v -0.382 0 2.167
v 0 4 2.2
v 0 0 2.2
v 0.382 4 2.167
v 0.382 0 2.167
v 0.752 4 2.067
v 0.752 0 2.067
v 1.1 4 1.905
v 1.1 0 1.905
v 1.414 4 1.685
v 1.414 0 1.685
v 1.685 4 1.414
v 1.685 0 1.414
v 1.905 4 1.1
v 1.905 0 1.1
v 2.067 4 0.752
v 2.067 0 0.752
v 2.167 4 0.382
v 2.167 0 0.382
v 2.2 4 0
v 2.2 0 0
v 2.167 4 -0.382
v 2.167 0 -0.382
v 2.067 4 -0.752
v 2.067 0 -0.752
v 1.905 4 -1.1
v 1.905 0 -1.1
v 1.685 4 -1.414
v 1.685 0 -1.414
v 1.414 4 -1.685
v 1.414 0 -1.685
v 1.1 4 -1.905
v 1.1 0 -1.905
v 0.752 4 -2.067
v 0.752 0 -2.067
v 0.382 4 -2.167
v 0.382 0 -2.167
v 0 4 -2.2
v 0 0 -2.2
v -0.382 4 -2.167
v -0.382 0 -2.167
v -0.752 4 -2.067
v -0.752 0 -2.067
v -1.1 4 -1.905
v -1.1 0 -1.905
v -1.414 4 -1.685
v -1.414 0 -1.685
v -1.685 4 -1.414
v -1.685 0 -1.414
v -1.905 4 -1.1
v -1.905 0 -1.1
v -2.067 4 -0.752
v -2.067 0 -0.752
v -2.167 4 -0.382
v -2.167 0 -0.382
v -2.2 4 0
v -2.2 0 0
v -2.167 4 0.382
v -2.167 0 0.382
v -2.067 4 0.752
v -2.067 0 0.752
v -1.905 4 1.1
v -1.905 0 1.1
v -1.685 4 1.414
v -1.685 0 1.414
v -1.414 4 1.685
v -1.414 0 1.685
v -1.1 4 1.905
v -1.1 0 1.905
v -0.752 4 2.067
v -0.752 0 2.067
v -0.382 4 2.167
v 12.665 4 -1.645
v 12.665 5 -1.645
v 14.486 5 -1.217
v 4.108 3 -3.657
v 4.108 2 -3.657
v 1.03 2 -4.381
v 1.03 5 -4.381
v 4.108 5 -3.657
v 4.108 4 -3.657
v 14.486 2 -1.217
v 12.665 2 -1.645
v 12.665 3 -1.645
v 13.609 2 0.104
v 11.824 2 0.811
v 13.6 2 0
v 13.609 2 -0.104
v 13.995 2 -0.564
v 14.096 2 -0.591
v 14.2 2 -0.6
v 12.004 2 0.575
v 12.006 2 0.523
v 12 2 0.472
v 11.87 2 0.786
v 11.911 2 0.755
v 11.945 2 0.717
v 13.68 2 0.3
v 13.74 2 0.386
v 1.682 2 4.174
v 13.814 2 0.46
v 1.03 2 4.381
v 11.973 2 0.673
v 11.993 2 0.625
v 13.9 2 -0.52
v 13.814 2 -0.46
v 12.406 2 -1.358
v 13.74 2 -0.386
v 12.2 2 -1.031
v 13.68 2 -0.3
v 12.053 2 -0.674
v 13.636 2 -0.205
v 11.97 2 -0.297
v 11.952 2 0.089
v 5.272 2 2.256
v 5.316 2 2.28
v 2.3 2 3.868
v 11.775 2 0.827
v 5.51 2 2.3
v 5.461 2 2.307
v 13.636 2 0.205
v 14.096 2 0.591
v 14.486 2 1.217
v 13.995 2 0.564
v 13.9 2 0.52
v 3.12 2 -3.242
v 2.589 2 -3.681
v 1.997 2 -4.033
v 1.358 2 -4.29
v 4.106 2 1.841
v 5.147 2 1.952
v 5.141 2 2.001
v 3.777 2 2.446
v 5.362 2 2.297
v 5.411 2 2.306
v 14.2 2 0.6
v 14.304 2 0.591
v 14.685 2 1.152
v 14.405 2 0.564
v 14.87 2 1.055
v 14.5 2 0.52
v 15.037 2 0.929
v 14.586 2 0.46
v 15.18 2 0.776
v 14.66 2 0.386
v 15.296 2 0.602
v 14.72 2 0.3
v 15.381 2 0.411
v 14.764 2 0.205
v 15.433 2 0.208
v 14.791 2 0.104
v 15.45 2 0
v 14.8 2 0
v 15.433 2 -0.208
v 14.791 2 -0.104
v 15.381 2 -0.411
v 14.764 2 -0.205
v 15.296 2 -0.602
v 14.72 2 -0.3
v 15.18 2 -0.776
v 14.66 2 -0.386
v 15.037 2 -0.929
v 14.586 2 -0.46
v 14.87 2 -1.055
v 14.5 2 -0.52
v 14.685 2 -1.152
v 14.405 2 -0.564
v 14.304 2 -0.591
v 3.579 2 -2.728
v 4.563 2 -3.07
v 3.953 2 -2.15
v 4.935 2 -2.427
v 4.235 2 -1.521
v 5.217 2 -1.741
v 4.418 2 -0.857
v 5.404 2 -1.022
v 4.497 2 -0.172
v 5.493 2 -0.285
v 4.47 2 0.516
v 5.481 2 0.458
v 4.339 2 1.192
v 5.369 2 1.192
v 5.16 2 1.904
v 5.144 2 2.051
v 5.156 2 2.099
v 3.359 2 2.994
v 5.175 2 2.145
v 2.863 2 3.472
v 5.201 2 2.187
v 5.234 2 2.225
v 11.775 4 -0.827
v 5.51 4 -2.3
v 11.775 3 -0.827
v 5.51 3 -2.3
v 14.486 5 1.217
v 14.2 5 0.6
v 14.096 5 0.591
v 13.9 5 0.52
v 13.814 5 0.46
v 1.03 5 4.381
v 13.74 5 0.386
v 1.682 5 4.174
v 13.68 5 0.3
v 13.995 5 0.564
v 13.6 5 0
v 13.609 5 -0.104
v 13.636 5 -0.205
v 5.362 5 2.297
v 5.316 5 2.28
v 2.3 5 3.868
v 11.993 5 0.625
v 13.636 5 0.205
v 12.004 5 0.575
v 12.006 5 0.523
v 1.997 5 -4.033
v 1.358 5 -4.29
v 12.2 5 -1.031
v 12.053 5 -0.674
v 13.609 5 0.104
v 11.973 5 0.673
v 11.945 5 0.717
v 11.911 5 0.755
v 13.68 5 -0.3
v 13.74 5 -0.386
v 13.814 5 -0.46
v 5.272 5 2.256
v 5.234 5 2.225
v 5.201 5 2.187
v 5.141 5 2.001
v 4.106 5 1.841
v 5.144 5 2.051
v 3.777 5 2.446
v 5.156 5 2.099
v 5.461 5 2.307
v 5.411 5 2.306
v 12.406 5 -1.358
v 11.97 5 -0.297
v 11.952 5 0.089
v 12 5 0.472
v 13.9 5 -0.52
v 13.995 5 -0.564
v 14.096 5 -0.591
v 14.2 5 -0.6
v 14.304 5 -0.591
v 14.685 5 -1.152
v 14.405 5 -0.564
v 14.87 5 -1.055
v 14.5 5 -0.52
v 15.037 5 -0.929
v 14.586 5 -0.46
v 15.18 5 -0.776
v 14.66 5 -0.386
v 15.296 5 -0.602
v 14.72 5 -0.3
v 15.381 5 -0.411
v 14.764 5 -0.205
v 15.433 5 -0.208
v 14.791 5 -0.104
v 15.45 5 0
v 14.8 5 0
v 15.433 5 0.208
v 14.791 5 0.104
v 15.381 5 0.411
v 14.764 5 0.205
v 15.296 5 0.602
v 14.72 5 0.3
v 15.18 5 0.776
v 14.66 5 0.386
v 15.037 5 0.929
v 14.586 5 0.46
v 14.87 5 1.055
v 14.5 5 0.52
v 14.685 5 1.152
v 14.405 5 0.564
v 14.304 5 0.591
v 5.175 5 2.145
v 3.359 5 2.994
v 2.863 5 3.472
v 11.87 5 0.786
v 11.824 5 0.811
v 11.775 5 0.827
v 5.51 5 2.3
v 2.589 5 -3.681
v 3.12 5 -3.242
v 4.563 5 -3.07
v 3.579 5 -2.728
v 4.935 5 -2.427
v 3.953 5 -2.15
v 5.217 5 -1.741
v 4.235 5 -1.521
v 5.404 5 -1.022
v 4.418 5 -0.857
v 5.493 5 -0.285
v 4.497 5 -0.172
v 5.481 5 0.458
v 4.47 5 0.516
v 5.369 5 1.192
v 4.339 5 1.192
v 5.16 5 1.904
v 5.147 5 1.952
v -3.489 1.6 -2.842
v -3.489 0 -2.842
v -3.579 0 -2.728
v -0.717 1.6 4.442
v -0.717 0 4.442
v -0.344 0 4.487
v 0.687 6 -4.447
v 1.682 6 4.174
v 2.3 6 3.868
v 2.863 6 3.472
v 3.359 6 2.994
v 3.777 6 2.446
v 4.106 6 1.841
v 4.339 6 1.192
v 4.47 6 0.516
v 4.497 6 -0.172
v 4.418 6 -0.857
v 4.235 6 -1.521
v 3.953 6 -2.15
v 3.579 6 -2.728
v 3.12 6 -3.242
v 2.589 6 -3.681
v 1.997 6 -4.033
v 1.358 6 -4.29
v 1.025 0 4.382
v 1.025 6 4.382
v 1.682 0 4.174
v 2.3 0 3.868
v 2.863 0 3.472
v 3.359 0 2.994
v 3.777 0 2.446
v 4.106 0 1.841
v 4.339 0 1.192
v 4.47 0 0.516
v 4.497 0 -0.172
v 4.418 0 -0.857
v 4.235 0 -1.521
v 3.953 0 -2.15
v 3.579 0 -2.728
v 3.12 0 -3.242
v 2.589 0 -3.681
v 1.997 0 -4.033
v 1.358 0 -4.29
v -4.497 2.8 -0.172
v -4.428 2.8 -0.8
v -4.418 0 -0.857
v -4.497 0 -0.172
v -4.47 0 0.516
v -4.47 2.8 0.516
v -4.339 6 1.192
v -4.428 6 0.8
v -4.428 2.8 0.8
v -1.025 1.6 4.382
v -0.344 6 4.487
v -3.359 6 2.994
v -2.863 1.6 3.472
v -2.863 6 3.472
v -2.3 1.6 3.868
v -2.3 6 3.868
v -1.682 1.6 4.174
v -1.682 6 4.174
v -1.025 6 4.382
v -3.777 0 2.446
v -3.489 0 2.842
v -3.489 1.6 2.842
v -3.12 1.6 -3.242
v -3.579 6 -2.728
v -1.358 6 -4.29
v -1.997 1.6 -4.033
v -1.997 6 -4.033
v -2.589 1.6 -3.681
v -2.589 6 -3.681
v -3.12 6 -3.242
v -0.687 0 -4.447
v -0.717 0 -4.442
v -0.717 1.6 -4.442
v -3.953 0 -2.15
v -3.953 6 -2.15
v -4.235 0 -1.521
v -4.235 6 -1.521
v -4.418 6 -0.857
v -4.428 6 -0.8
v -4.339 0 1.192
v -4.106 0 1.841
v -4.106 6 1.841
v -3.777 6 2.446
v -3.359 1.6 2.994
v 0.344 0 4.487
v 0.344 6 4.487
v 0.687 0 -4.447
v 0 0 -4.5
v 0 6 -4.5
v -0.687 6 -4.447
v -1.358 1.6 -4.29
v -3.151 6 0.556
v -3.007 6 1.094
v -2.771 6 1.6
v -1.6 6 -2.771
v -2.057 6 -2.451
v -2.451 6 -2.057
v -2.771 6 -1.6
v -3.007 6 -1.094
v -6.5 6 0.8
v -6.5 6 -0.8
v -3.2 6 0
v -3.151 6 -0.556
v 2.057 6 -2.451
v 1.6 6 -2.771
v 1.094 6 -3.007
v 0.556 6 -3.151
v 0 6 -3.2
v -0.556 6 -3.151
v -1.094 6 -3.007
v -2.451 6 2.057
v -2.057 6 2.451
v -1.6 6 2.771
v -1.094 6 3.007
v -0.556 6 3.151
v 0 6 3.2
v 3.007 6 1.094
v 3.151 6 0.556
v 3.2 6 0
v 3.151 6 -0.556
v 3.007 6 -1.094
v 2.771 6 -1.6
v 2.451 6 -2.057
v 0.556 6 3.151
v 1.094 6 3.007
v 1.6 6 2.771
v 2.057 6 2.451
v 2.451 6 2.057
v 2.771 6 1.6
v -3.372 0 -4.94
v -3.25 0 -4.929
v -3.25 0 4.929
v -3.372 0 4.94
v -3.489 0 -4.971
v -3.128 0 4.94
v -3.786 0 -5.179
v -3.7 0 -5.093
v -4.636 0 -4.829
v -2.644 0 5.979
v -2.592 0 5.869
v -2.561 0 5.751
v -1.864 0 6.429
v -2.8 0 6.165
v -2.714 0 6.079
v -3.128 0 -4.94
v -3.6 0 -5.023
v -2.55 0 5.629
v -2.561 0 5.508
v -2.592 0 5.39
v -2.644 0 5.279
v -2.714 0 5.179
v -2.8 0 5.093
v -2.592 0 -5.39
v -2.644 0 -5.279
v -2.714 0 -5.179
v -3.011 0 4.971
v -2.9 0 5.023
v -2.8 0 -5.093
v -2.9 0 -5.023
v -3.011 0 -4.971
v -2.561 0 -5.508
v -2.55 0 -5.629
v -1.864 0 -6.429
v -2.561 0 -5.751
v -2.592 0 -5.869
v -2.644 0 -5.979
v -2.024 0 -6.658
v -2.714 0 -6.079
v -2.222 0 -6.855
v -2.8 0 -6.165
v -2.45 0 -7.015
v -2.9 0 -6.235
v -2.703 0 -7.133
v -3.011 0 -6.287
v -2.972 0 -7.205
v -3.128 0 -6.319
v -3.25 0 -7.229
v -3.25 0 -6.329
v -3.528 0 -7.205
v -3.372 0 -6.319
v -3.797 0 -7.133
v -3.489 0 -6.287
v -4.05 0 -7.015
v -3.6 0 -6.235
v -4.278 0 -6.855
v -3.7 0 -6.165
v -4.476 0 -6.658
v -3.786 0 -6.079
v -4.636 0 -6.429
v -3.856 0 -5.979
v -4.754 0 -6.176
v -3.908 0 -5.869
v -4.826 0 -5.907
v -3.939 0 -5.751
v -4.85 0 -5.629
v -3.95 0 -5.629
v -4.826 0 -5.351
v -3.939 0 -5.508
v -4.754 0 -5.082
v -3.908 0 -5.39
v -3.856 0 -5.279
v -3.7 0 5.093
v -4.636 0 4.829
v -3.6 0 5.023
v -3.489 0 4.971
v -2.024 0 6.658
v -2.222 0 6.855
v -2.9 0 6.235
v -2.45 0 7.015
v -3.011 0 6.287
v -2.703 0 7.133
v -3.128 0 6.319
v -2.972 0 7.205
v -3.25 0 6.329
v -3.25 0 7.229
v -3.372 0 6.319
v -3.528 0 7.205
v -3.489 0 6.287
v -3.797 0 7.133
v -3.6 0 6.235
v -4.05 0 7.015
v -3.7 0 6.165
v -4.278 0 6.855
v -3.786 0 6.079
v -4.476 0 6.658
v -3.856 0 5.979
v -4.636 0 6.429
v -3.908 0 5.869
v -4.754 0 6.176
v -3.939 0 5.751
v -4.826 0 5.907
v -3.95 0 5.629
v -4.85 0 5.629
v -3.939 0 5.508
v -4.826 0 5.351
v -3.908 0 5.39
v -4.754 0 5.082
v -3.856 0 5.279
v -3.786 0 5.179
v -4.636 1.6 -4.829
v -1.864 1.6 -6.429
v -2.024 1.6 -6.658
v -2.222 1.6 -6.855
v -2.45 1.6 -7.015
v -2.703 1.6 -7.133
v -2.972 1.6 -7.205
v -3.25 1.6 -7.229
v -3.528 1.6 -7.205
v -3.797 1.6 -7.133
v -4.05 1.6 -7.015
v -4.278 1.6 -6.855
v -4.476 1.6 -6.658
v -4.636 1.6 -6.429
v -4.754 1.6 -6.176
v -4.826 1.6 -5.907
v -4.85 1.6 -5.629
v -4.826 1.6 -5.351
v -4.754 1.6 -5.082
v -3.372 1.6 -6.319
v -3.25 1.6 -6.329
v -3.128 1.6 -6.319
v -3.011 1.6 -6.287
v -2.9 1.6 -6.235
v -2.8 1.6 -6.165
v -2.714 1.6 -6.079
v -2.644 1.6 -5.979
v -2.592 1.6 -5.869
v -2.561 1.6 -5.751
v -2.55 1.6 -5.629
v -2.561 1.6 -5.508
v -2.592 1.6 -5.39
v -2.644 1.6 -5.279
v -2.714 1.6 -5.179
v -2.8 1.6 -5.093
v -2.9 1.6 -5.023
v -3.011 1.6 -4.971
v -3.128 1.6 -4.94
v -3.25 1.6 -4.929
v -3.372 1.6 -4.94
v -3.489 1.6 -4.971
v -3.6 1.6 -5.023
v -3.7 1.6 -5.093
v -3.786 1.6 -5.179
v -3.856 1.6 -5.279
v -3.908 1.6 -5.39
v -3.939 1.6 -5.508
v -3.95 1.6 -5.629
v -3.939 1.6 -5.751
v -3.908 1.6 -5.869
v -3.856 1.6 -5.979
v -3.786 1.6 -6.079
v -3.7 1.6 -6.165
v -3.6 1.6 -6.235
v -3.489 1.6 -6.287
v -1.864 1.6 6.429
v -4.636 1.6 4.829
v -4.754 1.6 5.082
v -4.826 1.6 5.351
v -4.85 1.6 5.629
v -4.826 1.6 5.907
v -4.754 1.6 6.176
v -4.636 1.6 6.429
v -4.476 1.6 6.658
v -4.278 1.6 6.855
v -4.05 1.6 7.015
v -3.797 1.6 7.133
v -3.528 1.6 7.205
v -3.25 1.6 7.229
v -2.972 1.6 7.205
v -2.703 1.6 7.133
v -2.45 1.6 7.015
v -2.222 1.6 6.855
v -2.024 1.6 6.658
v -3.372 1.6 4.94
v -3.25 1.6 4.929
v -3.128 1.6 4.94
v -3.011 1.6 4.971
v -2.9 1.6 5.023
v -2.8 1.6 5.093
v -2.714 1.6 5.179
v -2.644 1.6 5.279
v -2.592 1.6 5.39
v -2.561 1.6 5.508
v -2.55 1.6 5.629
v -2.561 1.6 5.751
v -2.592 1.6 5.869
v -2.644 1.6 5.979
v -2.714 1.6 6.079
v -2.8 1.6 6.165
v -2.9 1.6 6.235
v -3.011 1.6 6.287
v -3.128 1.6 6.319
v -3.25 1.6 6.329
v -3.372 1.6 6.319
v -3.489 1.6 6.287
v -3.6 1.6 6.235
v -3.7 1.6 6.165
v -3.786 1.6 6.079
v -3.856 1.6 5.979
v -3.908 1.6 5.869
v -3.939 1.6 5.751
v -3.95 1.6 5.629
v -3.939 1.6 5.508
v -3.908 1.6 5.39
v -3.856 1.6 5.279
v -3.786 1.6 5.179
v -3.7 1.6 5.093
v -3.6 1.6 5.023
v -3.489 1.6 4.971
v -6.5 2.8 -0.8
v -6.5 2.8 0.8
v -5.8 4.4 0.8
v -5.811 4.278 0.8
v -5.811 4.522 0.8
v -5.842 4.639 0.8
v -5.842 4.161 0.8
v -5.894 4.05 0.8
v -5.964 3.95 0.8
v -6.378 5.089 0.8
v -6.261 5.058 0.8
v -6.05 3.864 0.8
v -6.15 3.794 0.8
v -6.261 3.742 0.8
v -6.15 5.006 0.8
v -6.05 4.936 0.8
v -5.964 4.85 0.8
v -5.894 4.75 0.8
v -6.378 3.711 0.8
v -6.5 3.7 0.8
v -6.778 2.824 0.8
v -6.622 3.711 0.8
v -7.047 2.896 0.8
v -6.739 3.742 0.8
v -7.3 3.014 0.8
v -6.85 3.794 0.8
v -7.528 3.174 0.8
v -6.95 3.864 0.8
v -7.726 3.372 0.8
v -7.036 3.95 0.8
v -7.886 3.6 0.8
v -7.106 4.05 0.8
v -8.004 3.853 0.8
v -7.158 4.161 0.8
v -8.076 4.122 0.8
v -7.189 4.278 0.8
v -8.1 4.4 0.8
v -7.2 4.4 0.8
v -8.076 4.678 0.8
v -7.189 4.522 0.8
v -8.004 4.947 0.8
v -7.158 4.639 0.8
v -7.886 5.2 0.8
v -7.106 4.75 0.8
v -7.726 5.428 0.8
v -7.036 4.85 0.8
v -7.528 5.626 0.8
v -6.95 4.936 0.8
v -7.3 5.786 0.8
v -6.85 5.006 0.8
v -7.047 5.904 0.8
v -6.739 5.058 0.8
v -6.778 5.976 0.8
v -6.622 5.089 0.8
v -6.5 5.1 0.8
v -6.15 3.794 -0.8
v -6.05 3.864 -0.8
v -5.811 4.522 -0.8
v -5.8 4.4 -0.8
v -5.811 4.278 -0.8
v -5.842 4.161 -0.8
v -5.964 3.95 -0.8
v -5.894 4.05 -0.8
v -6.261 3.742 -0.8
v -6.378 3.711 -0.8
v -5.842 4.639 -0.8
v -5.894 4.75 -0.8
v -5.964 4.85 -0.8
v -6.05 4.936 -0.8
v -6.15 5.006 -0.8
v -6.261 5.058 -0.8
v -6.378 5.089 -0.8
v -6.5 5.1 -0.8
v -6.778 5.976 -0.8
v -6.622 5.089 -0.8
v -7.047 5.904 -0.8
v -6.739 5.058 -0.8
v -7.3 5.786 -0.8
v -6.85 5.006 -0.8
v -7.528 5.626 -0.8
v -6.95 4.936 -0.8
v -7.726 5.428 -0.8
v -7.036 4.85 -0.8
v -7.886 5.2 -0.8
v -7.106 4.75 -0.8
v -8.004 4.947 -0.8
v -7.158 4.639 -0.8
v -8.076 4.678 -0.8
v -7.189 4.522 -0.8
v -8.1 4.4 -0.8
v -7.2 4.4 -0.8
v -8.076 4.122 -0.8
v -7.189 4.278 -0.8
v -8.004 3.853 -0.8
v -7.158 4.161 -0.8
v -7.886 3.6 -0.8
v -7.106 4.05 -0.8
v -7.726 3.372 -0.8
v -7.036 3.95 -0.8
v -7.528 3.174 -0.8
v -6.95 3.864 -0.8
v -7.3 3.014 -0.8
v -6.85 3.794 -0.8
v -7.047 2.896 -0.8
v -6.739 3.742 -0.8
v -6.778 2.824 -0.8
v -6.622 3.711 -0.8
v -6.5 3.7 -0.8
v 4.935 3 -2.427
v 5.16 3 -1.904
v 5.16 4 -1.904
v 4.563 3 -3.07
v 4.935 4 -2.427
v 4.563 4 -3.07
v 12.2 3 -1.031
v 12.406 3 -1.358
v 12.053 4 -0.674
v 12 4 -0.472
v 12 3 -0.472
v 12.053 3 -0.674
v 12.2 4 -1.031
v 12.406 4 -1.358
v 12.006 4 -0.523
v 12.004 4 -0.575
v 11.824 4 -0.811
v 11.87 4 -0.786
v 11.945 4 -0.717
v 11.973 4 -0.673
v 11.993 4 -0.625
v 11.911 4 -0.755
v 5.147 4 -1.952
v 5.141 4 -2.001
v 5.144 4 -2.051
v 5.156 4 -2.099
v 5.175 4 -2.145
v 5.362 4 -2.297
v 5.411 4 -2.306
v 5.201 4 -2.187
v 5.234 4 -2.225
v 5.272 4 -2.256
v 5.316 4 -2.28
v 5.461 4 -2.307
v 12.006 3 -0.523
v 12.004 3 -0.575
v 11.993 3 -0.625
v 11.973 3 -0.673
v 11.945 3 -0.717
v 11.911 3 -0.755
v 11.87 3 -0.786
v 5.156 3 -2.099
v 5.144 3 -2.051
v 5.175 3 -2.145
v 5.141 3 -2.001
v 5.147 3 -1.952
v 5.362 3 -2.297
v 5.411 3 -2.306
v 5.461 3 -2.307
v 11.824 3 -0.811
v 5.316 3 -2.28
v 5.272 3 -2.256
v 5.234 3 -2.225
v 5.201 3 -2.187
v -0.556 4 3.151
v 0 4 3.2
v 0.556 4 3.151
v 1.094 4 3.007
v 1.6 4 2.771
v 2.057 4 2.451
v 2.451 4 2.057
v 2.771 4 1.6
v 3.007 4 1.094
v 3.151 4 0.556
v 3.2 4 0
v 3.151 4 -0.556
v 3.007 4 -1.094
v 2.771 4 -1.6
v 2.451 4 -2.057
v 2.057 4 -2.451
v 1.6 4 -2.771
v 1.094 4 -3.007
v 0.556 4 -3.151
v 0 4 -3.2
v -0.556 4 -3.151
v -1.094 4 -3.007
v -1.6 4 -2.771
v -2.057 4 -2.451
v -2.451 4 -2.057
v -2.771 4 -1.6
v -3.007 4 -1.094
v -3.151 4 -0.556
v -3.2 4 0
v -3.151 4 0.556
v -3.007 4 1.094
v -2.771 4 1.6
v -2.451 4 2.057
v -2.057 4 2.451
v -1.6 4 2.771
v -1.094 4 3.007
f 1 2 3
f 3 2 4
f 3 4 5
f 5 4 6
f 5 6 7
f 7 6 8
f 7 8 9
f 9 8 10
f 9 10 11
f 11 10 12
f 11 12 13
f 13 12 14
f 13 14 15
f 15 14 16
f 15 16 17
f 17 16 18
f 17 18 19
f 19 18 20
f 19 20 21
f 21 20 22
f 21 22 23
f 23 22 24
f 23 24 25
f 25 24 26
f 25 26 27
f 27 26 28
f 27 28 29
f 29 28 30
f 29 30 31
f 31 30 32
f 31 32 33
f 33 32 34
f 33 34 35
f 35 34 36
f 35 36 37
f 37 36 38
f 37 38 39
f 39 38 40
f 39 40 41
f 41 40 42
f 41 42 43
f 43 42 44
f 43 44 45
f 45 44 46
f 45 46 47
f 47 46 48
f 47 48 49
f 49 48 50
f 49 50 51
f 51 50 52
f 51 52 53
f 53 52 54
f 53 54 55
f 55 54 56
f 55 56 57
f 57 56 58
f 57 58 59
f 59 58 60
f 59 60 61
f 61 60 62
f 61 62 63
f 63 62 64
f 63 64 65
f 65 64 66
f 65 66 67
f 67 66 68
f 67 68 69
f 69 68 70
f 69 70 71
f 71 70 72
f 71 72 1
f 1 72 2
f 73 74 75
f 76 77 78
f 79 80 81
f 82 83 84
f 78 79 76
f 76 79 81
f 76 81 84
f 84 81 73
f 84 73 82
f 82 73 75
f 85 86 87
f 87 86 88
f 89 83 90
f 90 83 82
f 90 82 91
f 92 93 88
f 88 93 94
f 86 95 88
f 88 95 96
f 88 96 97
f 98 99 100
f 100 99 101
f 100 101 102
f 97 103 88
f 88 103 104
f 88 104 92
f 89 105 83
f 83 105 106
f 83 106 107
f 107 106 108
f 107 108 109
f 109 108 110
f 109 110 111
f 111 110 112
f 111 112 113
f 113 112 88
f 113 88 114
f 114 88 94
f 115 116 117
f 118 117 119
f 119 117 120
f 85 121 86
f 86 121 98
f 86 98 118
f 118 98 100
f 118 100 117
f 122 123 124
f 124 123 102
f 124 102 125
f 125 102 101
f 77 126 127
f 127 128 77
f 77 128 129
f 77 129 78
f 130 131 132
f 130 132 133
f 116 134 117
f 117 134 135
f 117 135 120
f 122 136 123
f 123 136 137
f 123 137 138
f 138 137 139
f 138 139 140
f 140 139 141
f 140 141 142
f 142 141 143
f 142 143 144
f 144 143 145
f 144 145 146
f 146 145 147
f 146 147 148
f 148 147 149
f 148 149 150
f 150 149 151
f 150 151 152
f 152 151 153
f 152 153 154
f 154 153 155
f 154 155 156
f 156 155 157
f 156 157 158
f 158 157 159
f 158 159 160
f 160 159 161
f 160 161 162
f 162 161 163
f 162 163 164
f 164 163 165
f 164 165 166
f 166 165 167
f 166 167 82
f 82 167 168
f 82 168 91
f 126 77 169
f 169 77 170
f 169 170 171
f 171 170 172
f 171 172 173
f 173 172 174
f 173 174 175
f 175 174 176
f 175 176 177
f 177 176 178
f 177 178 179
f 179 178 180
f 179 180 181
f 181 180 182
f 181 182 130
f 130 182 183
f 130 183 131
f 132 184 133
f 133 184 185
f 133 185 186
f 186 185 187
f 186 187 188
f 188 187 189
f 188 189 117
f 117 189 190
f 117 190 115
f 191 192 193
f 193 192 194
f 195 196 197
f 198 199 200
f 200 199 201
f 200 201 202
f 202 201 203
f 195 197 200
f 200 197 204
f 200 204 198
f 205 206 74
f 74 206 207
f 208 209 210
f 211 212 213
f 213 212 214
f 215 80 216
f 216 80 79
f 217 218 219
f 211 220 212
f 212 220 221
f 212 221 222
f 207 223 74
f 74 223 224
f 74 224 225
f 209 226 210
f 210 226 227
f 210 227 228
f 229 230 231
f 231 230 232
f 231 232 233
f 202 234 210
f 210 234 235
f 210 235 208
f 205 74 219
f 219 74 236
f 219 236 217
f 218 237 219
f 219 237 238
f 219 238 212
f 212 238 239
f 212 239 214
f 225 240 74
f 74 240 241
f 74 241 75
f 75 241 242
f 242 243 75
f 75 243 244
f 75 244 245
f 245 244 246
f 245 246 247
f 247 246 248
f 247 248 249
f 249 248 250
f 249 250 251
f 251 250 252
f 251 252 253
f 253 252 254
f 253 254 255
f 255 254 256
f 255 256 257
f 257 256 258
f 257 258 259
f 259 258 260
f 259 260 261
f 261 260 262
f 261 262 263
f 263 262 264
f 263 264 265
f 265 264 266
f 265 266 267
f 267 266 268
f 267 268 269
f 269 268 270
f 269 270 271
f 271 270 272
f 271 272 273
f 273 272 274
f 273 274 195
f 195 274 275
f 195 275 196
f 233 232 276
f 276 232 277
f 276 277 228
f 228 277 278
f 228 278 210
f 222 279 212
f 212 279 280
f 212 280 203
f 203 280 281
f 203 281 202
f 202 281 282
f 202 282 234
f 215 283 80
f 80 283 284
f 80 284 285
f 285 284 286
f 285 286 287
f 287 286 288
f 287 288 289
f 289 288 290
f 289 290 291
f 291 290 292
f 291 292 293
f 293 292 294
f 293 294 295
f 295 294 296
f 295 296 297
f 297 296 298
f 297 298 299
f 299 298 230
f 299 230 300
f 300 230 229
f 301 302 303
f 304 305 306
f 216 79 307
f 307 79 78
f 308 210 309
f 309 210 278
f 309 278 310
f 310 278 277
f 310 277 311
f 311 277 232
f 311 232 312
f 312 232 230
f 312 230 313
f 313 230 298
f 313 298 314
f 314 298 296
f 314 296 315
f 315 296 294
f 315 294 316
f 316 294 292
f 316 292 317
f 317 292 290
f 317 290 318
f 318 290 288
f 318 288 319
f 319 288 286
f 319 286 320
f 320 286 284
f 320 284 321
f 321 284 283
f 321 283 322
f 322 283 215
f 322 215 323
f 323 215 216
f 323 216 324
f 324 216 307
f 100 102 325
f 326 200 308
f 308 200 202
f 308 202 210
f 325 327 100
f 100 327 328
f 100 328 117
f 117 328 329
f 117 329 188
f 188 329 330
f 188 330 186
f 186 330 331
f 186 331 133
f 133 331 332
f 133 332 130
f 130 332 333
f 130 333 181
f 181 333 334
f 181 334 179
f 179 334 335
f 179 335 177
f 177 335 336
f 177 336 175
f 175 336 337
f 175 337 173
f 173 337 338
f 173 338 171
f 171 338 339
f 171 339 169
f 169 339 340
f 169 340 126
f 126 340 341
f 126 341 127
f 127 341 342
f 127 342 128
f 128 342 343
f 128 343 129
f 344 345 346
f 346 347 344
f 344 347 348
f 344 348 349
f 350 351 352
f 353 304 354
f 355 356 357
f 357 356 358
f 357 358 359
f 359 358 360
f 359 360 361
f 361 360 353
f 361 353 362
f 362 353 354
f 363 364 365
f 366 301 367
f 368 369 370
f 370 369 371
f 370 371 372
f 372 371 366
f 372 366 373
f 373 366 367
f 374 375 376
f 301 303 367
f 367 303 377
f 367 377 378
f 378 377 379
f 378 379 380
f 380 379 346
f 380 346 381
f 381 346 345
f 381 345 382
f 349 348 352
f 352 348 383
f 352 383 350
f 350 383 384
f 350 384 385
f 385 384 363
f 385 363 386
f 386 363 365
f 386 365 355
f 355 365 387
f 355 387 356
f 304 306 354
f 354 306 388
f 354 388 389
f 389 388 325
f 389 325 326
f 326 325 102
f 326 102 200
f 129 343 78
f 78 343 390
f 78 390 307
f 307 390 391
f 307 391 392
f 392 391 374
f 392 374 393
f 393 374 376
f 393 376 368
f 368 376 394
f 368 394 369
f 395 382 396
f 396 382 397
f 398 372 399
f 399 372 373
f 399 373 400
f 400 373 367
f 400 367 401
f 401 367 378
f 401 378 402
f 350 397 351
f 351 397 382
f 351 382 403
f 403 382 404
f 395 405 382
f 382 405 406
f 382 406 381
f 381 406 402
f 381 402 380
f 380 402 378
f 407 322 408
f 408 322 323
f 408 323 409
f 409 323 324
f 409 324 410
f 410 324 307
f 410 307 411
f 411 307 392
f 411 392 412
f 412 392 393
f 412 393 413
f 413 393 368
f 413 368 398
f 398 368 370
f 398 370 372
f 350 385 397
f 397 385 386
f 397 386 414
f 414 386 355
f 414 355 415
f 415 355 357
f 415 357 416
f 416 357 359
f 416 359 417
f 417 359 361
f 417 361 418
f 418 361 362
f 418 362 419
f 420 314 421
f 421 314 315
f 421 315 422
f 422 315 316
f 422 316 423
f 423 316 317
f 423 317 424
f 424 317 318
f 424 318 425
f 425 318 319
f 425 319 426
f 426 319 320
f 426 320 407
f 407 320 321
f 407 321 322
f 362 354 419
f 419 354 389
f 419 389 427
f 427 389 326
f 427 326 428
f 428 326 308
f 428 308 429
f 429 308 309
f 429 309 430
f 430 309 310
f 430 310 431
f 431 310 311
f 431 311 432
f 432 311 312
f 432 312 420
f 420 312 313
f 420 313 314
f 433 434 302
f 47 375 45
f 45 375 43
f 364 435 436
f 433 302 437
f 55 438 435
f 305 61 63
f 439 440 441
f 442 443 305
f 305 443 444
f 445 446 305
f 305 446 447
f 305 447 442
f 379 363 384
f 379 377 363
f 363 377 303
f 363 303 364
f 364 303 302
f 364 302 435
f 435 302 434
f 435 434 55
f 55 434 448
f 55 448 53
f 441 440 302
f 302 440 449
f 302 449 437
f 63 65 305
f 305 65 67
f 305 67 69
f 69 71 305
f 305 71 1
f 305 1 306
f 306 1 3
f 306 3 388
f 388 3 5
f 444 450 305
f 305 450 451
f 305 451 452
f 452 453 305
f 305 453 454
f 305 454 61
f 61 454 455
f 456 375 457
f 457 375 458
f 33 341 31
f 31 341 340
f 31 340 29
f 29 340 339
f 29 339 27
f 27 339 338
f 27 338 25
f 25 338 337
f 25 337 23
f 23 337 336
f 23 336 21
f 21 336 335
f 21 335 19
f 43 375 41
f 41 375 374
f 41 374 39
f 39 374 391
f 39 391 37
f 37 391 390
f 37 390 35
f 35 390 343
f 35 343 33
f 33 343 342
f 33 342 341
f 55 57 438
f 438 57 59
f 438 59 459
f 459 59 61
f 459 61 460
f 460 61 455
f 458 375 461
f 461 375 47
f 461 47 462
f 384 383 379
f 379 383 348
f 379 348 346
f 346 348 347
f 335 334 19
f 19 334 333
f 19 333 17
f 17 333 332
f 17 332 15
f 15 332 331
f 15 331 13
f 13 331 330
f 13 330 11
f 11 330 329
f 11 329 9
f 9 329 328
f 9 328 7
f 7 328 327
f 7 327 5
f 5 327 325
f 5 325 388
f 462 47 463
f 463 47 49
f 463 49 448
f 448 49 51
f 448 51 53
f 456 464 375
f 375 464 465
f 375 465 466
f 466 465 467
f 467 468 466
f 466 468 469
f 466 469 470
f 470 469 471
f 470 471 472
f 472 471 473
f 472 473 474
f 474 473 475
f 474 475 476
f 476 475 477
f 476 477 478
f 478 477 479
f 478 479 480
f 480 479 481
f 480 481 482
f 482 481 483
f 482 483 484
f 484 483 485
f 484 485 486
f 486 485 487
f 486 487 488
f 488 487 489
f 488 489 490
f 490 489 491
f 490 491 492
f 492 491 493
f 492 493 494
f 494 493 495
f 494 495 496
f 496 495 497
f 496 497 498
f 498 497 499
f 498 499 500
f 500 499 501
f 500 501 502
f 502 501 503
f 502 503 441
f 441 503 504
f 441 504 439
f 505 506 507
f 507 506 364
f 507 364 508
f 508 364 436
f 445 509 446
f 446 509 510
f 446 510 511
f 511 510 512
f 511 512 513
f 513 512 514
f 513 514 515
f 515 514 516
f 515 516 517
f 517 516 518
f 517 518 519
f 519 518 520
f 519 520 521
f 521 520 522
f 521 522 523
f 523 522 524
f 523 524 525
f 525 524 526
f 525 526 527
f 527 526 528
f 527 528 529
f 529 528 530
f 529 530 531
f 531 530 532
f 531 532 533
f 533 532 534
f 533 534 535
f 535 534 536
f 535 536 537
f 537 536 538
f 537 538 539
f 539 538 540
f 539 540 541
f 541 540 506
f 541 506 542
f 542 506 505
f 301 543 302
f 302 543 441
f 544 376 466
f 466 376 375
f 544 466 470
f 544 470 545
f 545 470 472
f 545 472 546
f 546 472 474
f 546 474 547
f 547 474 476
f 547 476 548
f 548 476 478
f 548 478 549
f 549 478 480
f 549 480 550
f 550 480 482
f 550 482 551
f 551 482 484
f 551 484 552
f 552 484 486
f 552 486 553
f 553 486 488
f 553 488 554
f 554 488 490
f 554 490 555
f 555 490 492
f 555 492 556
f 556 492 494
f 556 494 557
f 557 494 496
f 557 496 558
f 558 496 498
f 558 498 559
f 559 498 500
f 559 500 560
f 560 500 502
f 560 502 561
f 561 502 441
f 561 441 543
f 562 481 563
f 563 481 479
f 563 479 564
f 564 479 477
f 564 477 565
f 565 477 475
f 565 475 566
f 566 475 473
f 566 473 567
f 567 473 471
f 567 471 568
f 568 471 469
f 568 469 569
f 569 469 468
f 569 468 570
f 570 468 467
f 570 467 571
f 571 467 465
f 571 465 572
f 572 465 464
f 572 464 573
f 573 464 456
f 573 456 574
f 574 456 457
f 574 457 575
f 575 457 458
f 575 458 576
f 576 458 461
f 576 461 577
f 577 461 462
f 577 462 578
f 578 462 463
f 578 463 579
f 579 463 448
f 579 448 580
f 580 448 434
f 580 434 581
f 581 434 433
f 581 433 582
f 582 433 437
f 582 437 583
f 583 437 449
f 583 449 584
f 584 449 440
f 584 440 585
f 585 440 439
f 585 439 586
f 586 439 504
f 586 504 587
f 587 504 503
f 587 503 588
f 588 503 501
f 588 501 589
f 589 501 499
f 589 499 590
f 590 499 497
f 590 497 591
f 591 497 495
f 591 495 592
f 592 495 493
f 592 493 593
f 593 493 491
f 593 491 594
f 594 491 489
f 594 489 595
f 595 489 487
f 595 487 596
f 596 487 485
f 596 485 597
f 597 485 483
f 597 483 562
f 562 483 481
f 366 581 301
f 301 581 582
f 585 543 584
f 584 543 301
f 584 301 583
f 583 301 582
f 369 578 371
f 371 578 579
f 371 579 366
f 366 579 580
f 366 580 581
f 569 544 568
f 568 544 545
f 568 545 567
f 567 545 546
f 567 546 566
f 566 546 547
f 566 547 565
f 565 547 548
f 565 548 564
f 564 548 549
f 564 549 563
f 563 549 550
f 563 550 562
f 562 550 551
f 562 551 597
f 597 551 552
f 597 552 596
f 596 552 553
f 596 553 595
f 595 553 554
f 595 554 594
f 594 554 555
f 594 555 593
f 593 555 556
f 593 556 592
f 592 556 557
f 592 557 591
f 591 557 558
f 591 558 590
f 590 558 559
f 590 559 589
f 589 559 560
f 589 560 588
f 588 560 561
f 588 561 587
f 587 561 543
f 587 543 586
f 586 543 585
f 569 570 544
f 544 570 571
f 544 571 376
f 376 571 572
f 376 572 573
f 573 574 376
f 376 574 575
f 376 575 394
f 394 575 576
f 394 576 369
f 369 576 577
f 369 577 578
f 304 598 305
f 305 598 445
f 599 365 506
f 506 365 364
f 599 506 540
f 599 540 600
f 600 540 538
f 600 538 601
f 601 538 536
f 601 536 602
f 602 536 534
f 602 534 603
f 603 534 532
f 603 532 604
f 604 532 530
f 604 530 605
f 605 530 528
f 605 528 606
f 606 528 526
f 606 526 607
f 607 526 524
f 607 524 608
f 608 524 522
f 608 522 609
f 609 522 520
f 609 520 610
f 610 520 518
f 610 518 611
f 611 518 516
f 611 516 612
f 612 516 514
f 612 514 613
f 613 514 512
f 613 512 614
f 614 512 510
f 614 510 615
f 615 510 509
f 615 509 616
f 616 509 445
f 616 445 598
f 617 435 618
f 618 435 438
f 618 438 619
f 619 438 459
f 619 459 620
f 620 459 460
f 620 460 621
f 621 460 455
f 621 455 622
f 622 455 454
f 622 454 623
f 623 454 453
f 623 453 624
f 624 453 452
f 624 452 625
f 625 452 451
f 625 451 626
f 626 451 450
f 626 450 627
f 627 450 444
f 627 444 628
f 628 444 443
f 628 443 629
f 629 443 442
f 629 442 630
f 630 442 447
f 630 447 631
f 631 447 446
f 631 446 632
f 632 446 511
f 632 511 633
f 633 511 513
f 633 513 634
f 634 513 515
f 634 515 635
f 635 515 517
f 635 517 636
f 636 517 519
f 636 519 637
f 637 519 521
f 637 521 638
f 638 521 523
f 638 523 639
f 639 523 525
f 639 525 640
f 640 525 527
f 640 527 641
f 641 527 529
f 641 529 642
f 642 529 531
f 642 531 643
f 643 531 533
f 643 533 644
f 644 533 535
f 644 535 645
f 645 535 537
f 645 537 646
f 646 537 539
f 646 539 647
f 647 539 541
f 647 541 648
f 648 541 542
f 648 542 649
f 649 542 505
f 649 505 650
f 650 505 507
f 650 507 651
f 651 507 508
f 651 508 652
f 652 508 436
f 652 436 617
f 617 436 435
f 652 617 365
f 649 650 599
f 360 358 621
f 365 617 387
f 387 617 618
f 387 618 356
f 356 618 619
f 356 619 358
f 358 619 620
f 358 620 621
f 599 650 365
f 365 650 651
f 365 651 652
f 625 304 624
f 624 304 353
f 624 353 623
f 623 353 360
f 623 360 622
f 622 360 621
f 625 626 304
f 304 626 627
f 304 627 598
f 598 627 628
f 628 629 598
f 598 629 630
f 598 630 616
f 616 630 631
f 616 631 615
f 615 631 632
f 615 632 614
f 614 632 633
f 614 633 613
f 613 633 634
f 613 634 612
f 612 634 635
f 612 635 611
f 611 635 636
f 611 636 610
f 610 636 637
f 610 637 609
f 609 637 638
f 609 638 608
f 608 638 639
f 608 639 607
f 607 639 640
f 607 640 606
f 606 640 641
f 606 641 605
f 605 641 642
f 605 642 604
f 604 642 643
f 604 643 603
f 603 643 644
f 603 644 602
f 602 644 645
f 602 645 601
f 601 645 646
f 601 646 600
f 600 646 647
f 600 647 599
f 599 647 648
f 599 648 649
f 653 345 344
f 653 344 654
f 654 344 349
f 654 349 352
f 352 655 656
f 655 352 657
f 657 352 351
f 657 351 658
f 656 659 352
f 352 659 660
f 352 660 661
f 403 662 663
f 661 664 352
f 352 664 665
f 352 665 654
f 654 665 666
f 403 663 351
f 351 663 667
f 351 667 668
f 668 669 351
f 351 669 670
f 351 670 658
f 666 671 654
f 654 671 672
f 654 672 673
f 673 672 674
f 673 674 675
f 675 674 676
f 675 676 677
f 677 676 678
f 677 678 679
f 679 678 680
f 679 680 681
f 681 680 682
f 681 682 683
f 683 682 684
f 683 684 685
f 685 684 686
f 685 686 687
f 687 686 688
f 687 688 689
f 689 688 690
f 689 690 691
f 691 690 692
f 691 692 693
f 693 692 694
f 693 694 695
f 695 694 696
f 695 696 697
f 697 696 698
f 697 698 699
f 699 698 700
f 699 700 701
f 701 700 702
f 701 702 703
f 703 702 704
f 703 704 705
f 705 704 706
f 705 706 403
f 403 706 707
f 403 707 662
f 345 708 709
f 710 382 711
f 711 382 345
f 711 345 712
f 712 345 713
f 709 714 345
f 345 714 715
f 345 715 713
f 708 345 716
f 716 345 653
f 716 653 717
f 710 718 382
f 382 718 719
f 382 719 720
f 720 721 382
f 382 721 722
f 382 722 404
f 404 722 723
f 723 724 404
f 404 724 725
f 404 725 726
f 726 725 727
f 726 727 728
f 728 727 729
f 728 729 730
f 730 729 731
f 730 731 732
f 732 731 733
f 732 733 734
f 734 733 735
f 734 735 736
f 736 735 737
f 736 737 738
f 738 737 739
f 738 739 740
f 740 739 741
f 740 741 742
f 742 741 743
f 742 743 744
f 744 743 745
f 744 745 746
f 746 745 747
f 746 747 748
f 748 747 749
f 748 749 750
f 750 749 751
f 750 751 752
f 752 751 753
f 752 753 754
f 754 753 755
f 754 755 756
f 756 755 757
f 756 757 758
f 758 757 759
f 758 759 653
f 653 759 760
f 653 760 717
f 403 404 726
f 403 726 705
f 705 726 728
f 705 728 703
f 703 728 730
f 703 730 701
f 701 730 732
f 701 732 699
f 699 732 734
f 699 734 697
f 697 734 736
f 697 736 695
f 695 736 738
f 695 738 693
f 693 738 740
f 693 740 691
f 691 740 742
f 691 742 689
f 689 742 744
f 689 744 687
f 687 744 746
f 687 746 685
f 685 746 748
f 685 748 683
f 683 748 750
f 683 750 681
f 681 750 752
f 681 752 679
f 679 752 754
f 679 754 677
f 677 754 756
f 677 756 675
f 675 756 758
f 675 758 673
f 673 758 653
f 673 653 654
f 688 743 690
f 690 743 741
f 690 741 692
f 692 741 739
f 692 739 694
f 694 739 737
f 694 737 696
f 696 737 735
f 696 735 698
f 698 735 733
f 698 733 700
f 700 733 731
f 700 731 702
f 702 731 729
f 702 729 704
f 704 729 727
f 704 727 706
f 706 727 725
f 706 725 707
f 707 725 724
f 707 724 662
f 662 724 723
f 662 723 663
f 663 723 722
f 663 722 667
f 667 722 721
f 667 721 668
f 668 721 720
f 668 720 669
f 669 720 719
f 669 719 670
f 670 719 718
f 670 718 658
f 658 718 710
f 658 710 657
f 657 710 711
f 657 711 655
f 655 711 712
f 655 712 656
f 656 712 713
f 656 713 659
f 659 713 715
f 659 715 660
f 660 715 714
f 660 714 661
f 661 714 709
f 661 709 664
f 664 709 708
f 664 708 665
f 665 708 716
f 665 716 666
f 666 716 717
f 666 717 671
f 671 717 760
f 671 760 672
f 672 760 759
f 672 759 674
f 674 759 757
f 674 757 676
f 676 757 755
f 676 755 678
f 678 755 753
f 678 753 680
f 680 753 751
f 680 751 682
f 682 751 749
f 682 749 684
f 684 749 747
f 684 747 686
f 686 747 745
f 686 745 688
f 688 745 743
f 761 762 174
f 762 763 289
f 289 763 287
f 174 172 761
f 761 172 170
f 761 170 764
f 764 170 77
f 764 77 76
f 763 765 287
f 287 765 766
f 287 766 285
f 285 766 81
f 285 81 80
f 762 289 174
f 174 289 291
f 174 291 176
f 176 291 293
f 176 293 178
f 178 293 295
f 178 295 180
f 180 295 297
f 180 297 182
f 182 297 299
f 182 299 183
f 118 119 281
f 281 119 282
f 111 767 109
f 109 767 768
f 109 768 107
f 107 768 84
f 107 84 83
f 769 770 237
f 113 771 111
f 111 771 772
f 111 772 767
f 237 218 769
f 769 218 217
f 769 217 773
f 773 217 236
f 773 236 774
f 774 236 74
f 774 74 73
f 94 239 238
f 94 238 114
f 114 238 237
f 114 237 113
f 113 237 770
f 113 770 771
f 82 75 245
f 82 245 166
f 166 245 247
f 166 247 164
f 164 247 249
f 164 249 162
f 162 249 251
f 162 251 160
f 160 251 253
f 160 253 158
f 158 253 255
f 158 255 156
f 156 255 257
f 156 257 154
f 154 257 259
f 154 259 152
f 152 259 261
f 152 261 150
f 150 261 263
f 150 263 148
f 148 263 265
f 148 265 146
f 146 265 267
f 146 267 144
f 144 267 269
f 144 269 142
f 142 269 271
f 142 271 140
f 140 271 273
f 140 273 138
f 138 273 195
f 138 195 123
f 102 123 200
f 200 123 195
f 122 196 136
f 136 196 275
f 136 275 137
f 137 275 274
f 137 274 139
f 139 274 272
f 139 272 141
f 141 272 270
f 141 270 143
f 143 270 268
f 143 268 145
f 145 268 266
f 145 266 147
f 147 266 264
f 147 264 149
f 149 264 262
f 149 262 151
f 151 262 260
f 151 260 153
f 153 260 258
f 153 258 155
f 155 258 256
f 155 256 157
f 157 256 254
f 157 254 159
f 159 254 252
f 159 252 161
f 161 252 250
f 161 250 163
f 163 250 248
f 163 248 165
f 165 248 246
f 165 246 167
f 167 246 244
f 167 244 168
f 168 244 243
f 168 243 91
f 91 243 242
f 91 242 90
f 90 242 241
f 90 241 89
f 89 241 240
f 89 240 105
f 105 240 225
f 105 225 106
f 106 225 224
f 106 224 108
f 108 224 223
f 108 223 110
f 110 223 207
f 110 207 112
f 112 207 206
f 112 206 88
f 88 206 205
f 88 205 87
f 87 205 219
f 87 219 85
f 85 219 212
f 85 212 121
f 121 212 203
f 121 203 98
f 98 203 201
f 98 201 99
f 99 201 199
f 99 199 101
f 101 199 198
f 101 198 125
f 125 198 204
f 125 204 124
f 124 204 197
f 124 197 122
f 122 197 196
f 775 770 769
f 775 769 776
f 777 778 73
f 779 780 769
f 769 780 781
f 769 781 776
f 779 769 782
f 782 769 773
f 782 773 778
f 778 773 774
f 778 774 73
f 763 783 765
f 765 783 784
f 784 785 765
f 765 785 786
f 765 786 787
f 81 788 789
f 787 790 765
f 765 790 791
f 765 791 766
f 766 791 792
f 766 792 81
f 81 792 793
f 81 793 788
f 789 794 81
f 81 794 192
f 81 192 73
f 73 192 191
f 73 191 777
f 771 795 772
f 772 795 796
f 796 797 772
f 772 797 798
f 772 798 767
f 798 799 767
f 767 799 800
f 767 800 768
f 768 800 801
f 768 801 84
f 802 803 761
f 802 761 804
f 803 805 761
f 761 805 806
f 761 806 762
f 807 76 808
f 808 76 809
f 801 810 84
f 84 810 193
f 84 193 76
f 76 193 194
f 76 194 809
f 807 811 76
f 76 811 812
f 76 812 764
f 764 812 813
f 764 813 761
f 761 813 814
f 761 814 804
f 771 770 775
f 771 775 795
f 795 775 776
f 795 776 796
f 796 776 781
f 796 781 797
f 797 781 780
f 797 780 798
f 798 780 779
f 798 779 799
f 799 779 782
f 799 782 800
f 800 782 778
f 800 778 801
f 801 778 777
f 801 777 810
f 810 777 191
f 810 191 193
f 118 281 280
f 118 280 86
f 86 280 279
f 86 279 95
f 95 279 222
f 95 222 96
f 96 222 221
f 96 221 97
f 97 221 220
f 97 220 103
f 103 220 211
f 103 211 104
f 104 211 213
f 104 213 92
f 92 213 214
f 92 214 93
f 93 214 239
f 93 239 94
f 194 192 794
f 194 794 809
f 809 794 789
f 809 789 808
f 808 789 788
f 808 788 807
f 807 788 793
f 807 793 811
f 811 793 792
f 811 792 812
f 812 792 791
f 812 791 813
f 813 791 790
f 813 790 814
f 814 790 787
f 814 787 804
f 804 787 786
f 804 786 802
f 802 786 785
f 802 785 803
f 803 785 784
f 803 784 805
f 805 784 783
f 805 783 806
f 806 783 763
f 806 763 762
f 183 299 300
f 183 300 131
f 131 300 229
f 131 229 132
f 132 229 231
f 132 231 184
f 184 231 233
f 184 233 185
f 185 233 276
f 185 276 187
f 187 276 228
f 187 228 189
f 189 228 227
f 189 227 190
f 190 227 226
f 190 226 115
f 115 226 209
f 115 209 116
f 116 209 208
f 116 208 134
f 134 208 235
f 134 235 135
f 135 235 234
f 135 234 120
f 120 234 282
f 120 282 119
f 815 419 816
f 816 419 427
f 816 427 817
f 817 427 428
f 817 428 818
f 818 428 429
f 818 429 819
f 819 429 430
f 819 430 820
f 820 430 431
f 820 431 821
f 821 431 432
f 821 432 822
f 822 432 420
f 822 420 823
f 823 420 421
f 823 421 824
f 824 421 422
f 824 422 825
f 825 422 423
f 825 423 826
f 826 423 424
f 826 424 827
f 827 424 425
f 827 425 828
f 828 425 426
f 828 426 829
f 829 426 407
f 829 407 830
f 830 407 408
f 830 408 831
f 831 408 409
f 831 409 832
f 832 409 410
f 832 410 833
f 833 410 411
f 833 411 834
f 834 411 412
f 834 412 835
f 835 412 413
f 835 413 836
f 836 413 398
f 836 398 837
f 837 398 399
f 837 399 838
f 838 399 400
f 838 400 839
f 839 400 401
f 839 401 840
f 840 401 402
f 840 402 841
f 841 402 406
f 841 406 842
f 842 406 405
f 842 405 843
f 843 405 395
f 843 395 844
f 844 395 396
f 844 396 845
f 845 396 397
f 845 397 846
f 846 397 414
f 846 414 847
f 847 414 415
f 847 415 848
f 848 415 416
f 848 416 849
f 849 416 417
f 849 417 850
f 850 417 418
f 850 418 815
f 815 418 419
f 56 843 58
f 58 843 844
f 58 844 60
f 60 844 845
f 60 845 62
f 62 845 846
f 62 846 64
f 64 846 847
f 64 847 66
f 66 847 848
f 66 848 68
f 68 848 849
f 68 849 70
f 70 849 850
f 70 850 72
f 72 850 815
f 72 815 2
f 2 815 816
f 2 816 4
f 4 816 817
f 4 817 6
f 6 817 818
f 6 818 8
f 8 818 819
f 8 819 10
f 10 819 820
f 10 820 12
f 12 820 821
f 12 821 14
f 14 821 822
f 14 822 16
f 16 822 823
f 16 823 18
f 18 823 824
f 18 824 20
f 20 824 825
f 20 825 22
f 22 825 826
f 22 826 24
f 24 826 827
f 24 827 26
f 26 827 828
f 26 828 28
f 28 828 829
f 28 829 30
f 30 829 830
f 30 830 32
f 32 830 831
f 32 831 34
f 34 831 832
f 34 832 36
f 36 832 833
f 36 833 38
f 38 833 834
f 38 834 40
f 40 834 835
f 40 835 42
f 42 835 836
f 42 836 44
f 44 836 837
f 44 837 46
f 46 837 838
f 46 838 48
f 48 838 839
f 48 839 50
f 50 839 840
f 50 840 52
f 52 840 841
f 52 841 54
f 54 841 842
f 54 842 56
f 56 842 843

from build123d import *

# Parameters (mm, degrees)
SKETCH1_R           = 4.5
BOSS_EXTRUDE1_DEPTH = 6
SKETCH2_R           = 0.7
BOSS_EXTRUDE2_DEPTH = 1.6
SKETCH3_R           = 0.7
BOSS_EXTRUDE3_DEPTH = 0.8
BOSS_EXTRUDE4_START = -4
SKETCH4_R           = 0.6
BOSS_EXTRUDE4_DEPTH = 3
CUT_EXTRUDE1_START  = -2
CUT_EXTRUDE1_DEPTH  = 1
CUT_EXTRUDE2_START  = -4
CUT_EXTRUDE2_DEPTH  = 1
FILLET1_R           = 0.3
SKETCH5_R           = 2.2
CUT_EXTRUDE4_DEPTH  = 19.08212732
SKETCH9_R           = 3.2
SKETCH9_R_2         = 2.2
CUT_EXTRUDE5_DEPTH  = 2


with BuildPart() as part:
    # Sketch1 → Boss-Extrude1 (new body)
    with BuildSketch(Plane(origin=(0, 0, 0), x_dir=(1, 0, 0), z_dir=(0, 1, 0))):
        Circle(SKETCH1_R)
    extrude(amount=BOSS_EXTRUDE1_DEPTH)

    # Sketch2 → Boss-Extrude2 (add)
    # profile 1 of 2: a face of its own
    with BuildSketch(Plane.XZ):
        with BuildLine():
            Line((-0.717333438, 4.442457961), (-1.864359354, 6.429165125))
            ThreePointArc((-1.864359354, 6.429165125), (-4.05, 7.014805771), (-4.635640646, 4.829165125))
            Line((-4.635640646, 4.829165125), (-3.488614731, 2.842457961))
            ThreePointArc((-3.488614731, 2.842457961), (-2.25, 3.897114317), (-0.717333438, 4.442457961))
        make_face()
        with Locations((-3.25, 5.629165125)):
            Circle(SKETCH2_R, mode=Mode.SUBTRACT)
    # profile 2 of 2: a face of its own
    with BuildSketch(Plane.XZ):
        with BuildLine():
            ThreePointArc((-0.717333438, -4.442457961), (-2.25, -3.897114317), (-3.488614731, -2.842457961))
            Line((-3.488614731, -2.842457961), (-4.635640646, -4.829165125))
            ThreePointArc((-4.635640646, -4.829165125), (-4.05, -7.014805771), (-1.864359354, -6.429165125))
            Line((-1.864359354, -6.429165125), (-0.717333438, -4.442457961))
        make_face()
        with Locations((-3.25, -5.629165125)):
            Circle(SKETCH2_R, mode=Mode.SUBTRACT)
    extrude(amount=-BOSS_EXTRUDE2_DEPTH)

    # Sketch3 → Boss-Extrude3 (add, symmetric)
    with BuildSketch(Plane.XY):
        with BuildLine():
            Line((-3.5, 6), (-6.5, 6))
            ThreePointArc((-6.5, 6), (-8.1, 4.4), (-6.5, 2.8))
            Line((-6.5, 2.8), (-3.5, 2.8))
            Line((-3.5, 2.8), (-3.5, 6))
        make_face()
        with Locations((-6.5, 4.4)):
            Circle(SKETCH3_R, mode=Mode.SUBTRACT)
    extrude(amount=BOSS_EXTRUDE3_DEPTH, both=True)

    # Sketch4 → Boss-Extrude4 (add)
    with BuildSketch(Plane(origin=(0, 6, 0), x_dir=(1, 0, 0), z_dir=(0, 1, 0)).offset(BOSS_EXTRUDE4_START)):
        with BuildLine():
            ThreePointArc((1.029929577, 4.380553055), (4.5, 0), (1.029929577, -4.380553055))
            Line((1.029929577, -4.380553055), (14.486091549, -1.216820293))
            ThreePointArc((14.486091549, -1.216820293), (15.45, 0), (14.486091549, 1.216820293))
            Line((14.486091549, 1.216820293), (1.029929577, 4.380553055))
        make_face()
        with BuildLine():
            Line((4.931081365, 2.436069903), (12.080503997, 0.75514018))
            ThreePointArc((12.080503997, 0.75514018), (11.982866038, 0.38316706), (11.95, 0))
            ThreePointArc((11.95, 0), (11.982866038, -0.38316706), (12.080503997, -0.75514018))
            Line((12.080503997, -0.75514018), (4.931081365, -2.436069903))
            ThreePointArc((4.931081365, -2.436069903), (5.5, 0), (4.931081365, 2.436069903))
        make_face(mode=Mode.SUBTRACT)
        with Locations((14.2, 0)):
            Circle(SKETCH4_R, mode=Mode.SUBTRACT)
    extrude(amount=BOSS_EXTRUDE4_DEPTH)

    # Sketch4<3> → Cut-Extrude1 (cut)
    with BuildSketch(Plane(origin=(0, 6, 0), x_dir=(1, 0, 0), z_dir=(0, 1, 0)).offset(CUT_EXTRUDE1_START)):
        with BuildLine():
            Line((12.664921694, 1.645002916), (4.108268481, 3.656792323))
            ThreePointArc((4.108268481, 3.656792323), (4.560701943, 3.074084869), (4.931081365, 2.436069903))
            Line((4.931081365, 2.436069903), (12.080503997, 0.75514018))
            ThreePointArc((12.080503997, 0.75514018), (12.319323987, 1.235134702), (12.664921694, 1.645002916))
        make_face()
    extrude(amount=CUT_EXTRUDE1_DEPTH, mode=Mode.SUBTRACT)

    # Sketch4<4> → Cut-Extrude2 (cut)
    with BuildSketch(Plane(origin=(0, 6, 0), x_dir=(1, 0, 0), z_dir=(0, 1, 0)).offset(CUT_EXTRUDE2_START)):
        with BuildLine():
            Line((12.664921694, 1.645002916), (4.108268481, 3.656792323))
            ThreePointArc((4.108268481, 3.656792323), (4.560701943, 3.074084869), (4.931081365, 2.436069903))
            Line((4.931081365, 2.436069903), (12.080503997, 0.75514018))
            ThreePointArc((12.080503997, 0.75514018), (12.319323987, 1.235134702), (12.664921694, 1.645002916))
        make_face()
    extrude(amount=CUT_EXTRUDE2_DEPTH, mode=Mode.SUBTRACT)

    # Fillet1
    fillet1_edges = [part.edges().sort_by_distance(p)[0] for p in [
        (12.080503997, 3.5, -0.75514018),
        (12.080503997, 3.5, 0.75514018),
        (4.931081365, 3.5, -2.436069903),
        (4.931081365, 3.5, 2.436069903),
    ]]
    fillet(fillet1_edges, radius=FILLET1_R)

    # Sketch5 → Cut-Extrude4 (cut, through all)
    with BuildSketch(Plane(origin=(0, 6, 0), x_dir=(1, 0, 0), z_dir=(0, 1, 0))):
        Circle(SKETCH5_R)
    extrude(amount=-CUT_EXTRUDE4_DEPTH, mode=Mode.SUBTRACT)

    # Sketch9 → Cut-Extrude5 (cut)
    with BuildSketch(Plane(origin=(0, 6, 0), x_dir=(1, 0, 0), z_dir=(0, 1, 0))):
        Circle(SKETCH9_R)
        Circle(SKETCH9_R_2, mode=Mode.SUBTRACT)
    extrude(amount=-CUT_EXTRUDE5_DEPTH, mode=Mode.SUBTRACT)


solid = part.part
